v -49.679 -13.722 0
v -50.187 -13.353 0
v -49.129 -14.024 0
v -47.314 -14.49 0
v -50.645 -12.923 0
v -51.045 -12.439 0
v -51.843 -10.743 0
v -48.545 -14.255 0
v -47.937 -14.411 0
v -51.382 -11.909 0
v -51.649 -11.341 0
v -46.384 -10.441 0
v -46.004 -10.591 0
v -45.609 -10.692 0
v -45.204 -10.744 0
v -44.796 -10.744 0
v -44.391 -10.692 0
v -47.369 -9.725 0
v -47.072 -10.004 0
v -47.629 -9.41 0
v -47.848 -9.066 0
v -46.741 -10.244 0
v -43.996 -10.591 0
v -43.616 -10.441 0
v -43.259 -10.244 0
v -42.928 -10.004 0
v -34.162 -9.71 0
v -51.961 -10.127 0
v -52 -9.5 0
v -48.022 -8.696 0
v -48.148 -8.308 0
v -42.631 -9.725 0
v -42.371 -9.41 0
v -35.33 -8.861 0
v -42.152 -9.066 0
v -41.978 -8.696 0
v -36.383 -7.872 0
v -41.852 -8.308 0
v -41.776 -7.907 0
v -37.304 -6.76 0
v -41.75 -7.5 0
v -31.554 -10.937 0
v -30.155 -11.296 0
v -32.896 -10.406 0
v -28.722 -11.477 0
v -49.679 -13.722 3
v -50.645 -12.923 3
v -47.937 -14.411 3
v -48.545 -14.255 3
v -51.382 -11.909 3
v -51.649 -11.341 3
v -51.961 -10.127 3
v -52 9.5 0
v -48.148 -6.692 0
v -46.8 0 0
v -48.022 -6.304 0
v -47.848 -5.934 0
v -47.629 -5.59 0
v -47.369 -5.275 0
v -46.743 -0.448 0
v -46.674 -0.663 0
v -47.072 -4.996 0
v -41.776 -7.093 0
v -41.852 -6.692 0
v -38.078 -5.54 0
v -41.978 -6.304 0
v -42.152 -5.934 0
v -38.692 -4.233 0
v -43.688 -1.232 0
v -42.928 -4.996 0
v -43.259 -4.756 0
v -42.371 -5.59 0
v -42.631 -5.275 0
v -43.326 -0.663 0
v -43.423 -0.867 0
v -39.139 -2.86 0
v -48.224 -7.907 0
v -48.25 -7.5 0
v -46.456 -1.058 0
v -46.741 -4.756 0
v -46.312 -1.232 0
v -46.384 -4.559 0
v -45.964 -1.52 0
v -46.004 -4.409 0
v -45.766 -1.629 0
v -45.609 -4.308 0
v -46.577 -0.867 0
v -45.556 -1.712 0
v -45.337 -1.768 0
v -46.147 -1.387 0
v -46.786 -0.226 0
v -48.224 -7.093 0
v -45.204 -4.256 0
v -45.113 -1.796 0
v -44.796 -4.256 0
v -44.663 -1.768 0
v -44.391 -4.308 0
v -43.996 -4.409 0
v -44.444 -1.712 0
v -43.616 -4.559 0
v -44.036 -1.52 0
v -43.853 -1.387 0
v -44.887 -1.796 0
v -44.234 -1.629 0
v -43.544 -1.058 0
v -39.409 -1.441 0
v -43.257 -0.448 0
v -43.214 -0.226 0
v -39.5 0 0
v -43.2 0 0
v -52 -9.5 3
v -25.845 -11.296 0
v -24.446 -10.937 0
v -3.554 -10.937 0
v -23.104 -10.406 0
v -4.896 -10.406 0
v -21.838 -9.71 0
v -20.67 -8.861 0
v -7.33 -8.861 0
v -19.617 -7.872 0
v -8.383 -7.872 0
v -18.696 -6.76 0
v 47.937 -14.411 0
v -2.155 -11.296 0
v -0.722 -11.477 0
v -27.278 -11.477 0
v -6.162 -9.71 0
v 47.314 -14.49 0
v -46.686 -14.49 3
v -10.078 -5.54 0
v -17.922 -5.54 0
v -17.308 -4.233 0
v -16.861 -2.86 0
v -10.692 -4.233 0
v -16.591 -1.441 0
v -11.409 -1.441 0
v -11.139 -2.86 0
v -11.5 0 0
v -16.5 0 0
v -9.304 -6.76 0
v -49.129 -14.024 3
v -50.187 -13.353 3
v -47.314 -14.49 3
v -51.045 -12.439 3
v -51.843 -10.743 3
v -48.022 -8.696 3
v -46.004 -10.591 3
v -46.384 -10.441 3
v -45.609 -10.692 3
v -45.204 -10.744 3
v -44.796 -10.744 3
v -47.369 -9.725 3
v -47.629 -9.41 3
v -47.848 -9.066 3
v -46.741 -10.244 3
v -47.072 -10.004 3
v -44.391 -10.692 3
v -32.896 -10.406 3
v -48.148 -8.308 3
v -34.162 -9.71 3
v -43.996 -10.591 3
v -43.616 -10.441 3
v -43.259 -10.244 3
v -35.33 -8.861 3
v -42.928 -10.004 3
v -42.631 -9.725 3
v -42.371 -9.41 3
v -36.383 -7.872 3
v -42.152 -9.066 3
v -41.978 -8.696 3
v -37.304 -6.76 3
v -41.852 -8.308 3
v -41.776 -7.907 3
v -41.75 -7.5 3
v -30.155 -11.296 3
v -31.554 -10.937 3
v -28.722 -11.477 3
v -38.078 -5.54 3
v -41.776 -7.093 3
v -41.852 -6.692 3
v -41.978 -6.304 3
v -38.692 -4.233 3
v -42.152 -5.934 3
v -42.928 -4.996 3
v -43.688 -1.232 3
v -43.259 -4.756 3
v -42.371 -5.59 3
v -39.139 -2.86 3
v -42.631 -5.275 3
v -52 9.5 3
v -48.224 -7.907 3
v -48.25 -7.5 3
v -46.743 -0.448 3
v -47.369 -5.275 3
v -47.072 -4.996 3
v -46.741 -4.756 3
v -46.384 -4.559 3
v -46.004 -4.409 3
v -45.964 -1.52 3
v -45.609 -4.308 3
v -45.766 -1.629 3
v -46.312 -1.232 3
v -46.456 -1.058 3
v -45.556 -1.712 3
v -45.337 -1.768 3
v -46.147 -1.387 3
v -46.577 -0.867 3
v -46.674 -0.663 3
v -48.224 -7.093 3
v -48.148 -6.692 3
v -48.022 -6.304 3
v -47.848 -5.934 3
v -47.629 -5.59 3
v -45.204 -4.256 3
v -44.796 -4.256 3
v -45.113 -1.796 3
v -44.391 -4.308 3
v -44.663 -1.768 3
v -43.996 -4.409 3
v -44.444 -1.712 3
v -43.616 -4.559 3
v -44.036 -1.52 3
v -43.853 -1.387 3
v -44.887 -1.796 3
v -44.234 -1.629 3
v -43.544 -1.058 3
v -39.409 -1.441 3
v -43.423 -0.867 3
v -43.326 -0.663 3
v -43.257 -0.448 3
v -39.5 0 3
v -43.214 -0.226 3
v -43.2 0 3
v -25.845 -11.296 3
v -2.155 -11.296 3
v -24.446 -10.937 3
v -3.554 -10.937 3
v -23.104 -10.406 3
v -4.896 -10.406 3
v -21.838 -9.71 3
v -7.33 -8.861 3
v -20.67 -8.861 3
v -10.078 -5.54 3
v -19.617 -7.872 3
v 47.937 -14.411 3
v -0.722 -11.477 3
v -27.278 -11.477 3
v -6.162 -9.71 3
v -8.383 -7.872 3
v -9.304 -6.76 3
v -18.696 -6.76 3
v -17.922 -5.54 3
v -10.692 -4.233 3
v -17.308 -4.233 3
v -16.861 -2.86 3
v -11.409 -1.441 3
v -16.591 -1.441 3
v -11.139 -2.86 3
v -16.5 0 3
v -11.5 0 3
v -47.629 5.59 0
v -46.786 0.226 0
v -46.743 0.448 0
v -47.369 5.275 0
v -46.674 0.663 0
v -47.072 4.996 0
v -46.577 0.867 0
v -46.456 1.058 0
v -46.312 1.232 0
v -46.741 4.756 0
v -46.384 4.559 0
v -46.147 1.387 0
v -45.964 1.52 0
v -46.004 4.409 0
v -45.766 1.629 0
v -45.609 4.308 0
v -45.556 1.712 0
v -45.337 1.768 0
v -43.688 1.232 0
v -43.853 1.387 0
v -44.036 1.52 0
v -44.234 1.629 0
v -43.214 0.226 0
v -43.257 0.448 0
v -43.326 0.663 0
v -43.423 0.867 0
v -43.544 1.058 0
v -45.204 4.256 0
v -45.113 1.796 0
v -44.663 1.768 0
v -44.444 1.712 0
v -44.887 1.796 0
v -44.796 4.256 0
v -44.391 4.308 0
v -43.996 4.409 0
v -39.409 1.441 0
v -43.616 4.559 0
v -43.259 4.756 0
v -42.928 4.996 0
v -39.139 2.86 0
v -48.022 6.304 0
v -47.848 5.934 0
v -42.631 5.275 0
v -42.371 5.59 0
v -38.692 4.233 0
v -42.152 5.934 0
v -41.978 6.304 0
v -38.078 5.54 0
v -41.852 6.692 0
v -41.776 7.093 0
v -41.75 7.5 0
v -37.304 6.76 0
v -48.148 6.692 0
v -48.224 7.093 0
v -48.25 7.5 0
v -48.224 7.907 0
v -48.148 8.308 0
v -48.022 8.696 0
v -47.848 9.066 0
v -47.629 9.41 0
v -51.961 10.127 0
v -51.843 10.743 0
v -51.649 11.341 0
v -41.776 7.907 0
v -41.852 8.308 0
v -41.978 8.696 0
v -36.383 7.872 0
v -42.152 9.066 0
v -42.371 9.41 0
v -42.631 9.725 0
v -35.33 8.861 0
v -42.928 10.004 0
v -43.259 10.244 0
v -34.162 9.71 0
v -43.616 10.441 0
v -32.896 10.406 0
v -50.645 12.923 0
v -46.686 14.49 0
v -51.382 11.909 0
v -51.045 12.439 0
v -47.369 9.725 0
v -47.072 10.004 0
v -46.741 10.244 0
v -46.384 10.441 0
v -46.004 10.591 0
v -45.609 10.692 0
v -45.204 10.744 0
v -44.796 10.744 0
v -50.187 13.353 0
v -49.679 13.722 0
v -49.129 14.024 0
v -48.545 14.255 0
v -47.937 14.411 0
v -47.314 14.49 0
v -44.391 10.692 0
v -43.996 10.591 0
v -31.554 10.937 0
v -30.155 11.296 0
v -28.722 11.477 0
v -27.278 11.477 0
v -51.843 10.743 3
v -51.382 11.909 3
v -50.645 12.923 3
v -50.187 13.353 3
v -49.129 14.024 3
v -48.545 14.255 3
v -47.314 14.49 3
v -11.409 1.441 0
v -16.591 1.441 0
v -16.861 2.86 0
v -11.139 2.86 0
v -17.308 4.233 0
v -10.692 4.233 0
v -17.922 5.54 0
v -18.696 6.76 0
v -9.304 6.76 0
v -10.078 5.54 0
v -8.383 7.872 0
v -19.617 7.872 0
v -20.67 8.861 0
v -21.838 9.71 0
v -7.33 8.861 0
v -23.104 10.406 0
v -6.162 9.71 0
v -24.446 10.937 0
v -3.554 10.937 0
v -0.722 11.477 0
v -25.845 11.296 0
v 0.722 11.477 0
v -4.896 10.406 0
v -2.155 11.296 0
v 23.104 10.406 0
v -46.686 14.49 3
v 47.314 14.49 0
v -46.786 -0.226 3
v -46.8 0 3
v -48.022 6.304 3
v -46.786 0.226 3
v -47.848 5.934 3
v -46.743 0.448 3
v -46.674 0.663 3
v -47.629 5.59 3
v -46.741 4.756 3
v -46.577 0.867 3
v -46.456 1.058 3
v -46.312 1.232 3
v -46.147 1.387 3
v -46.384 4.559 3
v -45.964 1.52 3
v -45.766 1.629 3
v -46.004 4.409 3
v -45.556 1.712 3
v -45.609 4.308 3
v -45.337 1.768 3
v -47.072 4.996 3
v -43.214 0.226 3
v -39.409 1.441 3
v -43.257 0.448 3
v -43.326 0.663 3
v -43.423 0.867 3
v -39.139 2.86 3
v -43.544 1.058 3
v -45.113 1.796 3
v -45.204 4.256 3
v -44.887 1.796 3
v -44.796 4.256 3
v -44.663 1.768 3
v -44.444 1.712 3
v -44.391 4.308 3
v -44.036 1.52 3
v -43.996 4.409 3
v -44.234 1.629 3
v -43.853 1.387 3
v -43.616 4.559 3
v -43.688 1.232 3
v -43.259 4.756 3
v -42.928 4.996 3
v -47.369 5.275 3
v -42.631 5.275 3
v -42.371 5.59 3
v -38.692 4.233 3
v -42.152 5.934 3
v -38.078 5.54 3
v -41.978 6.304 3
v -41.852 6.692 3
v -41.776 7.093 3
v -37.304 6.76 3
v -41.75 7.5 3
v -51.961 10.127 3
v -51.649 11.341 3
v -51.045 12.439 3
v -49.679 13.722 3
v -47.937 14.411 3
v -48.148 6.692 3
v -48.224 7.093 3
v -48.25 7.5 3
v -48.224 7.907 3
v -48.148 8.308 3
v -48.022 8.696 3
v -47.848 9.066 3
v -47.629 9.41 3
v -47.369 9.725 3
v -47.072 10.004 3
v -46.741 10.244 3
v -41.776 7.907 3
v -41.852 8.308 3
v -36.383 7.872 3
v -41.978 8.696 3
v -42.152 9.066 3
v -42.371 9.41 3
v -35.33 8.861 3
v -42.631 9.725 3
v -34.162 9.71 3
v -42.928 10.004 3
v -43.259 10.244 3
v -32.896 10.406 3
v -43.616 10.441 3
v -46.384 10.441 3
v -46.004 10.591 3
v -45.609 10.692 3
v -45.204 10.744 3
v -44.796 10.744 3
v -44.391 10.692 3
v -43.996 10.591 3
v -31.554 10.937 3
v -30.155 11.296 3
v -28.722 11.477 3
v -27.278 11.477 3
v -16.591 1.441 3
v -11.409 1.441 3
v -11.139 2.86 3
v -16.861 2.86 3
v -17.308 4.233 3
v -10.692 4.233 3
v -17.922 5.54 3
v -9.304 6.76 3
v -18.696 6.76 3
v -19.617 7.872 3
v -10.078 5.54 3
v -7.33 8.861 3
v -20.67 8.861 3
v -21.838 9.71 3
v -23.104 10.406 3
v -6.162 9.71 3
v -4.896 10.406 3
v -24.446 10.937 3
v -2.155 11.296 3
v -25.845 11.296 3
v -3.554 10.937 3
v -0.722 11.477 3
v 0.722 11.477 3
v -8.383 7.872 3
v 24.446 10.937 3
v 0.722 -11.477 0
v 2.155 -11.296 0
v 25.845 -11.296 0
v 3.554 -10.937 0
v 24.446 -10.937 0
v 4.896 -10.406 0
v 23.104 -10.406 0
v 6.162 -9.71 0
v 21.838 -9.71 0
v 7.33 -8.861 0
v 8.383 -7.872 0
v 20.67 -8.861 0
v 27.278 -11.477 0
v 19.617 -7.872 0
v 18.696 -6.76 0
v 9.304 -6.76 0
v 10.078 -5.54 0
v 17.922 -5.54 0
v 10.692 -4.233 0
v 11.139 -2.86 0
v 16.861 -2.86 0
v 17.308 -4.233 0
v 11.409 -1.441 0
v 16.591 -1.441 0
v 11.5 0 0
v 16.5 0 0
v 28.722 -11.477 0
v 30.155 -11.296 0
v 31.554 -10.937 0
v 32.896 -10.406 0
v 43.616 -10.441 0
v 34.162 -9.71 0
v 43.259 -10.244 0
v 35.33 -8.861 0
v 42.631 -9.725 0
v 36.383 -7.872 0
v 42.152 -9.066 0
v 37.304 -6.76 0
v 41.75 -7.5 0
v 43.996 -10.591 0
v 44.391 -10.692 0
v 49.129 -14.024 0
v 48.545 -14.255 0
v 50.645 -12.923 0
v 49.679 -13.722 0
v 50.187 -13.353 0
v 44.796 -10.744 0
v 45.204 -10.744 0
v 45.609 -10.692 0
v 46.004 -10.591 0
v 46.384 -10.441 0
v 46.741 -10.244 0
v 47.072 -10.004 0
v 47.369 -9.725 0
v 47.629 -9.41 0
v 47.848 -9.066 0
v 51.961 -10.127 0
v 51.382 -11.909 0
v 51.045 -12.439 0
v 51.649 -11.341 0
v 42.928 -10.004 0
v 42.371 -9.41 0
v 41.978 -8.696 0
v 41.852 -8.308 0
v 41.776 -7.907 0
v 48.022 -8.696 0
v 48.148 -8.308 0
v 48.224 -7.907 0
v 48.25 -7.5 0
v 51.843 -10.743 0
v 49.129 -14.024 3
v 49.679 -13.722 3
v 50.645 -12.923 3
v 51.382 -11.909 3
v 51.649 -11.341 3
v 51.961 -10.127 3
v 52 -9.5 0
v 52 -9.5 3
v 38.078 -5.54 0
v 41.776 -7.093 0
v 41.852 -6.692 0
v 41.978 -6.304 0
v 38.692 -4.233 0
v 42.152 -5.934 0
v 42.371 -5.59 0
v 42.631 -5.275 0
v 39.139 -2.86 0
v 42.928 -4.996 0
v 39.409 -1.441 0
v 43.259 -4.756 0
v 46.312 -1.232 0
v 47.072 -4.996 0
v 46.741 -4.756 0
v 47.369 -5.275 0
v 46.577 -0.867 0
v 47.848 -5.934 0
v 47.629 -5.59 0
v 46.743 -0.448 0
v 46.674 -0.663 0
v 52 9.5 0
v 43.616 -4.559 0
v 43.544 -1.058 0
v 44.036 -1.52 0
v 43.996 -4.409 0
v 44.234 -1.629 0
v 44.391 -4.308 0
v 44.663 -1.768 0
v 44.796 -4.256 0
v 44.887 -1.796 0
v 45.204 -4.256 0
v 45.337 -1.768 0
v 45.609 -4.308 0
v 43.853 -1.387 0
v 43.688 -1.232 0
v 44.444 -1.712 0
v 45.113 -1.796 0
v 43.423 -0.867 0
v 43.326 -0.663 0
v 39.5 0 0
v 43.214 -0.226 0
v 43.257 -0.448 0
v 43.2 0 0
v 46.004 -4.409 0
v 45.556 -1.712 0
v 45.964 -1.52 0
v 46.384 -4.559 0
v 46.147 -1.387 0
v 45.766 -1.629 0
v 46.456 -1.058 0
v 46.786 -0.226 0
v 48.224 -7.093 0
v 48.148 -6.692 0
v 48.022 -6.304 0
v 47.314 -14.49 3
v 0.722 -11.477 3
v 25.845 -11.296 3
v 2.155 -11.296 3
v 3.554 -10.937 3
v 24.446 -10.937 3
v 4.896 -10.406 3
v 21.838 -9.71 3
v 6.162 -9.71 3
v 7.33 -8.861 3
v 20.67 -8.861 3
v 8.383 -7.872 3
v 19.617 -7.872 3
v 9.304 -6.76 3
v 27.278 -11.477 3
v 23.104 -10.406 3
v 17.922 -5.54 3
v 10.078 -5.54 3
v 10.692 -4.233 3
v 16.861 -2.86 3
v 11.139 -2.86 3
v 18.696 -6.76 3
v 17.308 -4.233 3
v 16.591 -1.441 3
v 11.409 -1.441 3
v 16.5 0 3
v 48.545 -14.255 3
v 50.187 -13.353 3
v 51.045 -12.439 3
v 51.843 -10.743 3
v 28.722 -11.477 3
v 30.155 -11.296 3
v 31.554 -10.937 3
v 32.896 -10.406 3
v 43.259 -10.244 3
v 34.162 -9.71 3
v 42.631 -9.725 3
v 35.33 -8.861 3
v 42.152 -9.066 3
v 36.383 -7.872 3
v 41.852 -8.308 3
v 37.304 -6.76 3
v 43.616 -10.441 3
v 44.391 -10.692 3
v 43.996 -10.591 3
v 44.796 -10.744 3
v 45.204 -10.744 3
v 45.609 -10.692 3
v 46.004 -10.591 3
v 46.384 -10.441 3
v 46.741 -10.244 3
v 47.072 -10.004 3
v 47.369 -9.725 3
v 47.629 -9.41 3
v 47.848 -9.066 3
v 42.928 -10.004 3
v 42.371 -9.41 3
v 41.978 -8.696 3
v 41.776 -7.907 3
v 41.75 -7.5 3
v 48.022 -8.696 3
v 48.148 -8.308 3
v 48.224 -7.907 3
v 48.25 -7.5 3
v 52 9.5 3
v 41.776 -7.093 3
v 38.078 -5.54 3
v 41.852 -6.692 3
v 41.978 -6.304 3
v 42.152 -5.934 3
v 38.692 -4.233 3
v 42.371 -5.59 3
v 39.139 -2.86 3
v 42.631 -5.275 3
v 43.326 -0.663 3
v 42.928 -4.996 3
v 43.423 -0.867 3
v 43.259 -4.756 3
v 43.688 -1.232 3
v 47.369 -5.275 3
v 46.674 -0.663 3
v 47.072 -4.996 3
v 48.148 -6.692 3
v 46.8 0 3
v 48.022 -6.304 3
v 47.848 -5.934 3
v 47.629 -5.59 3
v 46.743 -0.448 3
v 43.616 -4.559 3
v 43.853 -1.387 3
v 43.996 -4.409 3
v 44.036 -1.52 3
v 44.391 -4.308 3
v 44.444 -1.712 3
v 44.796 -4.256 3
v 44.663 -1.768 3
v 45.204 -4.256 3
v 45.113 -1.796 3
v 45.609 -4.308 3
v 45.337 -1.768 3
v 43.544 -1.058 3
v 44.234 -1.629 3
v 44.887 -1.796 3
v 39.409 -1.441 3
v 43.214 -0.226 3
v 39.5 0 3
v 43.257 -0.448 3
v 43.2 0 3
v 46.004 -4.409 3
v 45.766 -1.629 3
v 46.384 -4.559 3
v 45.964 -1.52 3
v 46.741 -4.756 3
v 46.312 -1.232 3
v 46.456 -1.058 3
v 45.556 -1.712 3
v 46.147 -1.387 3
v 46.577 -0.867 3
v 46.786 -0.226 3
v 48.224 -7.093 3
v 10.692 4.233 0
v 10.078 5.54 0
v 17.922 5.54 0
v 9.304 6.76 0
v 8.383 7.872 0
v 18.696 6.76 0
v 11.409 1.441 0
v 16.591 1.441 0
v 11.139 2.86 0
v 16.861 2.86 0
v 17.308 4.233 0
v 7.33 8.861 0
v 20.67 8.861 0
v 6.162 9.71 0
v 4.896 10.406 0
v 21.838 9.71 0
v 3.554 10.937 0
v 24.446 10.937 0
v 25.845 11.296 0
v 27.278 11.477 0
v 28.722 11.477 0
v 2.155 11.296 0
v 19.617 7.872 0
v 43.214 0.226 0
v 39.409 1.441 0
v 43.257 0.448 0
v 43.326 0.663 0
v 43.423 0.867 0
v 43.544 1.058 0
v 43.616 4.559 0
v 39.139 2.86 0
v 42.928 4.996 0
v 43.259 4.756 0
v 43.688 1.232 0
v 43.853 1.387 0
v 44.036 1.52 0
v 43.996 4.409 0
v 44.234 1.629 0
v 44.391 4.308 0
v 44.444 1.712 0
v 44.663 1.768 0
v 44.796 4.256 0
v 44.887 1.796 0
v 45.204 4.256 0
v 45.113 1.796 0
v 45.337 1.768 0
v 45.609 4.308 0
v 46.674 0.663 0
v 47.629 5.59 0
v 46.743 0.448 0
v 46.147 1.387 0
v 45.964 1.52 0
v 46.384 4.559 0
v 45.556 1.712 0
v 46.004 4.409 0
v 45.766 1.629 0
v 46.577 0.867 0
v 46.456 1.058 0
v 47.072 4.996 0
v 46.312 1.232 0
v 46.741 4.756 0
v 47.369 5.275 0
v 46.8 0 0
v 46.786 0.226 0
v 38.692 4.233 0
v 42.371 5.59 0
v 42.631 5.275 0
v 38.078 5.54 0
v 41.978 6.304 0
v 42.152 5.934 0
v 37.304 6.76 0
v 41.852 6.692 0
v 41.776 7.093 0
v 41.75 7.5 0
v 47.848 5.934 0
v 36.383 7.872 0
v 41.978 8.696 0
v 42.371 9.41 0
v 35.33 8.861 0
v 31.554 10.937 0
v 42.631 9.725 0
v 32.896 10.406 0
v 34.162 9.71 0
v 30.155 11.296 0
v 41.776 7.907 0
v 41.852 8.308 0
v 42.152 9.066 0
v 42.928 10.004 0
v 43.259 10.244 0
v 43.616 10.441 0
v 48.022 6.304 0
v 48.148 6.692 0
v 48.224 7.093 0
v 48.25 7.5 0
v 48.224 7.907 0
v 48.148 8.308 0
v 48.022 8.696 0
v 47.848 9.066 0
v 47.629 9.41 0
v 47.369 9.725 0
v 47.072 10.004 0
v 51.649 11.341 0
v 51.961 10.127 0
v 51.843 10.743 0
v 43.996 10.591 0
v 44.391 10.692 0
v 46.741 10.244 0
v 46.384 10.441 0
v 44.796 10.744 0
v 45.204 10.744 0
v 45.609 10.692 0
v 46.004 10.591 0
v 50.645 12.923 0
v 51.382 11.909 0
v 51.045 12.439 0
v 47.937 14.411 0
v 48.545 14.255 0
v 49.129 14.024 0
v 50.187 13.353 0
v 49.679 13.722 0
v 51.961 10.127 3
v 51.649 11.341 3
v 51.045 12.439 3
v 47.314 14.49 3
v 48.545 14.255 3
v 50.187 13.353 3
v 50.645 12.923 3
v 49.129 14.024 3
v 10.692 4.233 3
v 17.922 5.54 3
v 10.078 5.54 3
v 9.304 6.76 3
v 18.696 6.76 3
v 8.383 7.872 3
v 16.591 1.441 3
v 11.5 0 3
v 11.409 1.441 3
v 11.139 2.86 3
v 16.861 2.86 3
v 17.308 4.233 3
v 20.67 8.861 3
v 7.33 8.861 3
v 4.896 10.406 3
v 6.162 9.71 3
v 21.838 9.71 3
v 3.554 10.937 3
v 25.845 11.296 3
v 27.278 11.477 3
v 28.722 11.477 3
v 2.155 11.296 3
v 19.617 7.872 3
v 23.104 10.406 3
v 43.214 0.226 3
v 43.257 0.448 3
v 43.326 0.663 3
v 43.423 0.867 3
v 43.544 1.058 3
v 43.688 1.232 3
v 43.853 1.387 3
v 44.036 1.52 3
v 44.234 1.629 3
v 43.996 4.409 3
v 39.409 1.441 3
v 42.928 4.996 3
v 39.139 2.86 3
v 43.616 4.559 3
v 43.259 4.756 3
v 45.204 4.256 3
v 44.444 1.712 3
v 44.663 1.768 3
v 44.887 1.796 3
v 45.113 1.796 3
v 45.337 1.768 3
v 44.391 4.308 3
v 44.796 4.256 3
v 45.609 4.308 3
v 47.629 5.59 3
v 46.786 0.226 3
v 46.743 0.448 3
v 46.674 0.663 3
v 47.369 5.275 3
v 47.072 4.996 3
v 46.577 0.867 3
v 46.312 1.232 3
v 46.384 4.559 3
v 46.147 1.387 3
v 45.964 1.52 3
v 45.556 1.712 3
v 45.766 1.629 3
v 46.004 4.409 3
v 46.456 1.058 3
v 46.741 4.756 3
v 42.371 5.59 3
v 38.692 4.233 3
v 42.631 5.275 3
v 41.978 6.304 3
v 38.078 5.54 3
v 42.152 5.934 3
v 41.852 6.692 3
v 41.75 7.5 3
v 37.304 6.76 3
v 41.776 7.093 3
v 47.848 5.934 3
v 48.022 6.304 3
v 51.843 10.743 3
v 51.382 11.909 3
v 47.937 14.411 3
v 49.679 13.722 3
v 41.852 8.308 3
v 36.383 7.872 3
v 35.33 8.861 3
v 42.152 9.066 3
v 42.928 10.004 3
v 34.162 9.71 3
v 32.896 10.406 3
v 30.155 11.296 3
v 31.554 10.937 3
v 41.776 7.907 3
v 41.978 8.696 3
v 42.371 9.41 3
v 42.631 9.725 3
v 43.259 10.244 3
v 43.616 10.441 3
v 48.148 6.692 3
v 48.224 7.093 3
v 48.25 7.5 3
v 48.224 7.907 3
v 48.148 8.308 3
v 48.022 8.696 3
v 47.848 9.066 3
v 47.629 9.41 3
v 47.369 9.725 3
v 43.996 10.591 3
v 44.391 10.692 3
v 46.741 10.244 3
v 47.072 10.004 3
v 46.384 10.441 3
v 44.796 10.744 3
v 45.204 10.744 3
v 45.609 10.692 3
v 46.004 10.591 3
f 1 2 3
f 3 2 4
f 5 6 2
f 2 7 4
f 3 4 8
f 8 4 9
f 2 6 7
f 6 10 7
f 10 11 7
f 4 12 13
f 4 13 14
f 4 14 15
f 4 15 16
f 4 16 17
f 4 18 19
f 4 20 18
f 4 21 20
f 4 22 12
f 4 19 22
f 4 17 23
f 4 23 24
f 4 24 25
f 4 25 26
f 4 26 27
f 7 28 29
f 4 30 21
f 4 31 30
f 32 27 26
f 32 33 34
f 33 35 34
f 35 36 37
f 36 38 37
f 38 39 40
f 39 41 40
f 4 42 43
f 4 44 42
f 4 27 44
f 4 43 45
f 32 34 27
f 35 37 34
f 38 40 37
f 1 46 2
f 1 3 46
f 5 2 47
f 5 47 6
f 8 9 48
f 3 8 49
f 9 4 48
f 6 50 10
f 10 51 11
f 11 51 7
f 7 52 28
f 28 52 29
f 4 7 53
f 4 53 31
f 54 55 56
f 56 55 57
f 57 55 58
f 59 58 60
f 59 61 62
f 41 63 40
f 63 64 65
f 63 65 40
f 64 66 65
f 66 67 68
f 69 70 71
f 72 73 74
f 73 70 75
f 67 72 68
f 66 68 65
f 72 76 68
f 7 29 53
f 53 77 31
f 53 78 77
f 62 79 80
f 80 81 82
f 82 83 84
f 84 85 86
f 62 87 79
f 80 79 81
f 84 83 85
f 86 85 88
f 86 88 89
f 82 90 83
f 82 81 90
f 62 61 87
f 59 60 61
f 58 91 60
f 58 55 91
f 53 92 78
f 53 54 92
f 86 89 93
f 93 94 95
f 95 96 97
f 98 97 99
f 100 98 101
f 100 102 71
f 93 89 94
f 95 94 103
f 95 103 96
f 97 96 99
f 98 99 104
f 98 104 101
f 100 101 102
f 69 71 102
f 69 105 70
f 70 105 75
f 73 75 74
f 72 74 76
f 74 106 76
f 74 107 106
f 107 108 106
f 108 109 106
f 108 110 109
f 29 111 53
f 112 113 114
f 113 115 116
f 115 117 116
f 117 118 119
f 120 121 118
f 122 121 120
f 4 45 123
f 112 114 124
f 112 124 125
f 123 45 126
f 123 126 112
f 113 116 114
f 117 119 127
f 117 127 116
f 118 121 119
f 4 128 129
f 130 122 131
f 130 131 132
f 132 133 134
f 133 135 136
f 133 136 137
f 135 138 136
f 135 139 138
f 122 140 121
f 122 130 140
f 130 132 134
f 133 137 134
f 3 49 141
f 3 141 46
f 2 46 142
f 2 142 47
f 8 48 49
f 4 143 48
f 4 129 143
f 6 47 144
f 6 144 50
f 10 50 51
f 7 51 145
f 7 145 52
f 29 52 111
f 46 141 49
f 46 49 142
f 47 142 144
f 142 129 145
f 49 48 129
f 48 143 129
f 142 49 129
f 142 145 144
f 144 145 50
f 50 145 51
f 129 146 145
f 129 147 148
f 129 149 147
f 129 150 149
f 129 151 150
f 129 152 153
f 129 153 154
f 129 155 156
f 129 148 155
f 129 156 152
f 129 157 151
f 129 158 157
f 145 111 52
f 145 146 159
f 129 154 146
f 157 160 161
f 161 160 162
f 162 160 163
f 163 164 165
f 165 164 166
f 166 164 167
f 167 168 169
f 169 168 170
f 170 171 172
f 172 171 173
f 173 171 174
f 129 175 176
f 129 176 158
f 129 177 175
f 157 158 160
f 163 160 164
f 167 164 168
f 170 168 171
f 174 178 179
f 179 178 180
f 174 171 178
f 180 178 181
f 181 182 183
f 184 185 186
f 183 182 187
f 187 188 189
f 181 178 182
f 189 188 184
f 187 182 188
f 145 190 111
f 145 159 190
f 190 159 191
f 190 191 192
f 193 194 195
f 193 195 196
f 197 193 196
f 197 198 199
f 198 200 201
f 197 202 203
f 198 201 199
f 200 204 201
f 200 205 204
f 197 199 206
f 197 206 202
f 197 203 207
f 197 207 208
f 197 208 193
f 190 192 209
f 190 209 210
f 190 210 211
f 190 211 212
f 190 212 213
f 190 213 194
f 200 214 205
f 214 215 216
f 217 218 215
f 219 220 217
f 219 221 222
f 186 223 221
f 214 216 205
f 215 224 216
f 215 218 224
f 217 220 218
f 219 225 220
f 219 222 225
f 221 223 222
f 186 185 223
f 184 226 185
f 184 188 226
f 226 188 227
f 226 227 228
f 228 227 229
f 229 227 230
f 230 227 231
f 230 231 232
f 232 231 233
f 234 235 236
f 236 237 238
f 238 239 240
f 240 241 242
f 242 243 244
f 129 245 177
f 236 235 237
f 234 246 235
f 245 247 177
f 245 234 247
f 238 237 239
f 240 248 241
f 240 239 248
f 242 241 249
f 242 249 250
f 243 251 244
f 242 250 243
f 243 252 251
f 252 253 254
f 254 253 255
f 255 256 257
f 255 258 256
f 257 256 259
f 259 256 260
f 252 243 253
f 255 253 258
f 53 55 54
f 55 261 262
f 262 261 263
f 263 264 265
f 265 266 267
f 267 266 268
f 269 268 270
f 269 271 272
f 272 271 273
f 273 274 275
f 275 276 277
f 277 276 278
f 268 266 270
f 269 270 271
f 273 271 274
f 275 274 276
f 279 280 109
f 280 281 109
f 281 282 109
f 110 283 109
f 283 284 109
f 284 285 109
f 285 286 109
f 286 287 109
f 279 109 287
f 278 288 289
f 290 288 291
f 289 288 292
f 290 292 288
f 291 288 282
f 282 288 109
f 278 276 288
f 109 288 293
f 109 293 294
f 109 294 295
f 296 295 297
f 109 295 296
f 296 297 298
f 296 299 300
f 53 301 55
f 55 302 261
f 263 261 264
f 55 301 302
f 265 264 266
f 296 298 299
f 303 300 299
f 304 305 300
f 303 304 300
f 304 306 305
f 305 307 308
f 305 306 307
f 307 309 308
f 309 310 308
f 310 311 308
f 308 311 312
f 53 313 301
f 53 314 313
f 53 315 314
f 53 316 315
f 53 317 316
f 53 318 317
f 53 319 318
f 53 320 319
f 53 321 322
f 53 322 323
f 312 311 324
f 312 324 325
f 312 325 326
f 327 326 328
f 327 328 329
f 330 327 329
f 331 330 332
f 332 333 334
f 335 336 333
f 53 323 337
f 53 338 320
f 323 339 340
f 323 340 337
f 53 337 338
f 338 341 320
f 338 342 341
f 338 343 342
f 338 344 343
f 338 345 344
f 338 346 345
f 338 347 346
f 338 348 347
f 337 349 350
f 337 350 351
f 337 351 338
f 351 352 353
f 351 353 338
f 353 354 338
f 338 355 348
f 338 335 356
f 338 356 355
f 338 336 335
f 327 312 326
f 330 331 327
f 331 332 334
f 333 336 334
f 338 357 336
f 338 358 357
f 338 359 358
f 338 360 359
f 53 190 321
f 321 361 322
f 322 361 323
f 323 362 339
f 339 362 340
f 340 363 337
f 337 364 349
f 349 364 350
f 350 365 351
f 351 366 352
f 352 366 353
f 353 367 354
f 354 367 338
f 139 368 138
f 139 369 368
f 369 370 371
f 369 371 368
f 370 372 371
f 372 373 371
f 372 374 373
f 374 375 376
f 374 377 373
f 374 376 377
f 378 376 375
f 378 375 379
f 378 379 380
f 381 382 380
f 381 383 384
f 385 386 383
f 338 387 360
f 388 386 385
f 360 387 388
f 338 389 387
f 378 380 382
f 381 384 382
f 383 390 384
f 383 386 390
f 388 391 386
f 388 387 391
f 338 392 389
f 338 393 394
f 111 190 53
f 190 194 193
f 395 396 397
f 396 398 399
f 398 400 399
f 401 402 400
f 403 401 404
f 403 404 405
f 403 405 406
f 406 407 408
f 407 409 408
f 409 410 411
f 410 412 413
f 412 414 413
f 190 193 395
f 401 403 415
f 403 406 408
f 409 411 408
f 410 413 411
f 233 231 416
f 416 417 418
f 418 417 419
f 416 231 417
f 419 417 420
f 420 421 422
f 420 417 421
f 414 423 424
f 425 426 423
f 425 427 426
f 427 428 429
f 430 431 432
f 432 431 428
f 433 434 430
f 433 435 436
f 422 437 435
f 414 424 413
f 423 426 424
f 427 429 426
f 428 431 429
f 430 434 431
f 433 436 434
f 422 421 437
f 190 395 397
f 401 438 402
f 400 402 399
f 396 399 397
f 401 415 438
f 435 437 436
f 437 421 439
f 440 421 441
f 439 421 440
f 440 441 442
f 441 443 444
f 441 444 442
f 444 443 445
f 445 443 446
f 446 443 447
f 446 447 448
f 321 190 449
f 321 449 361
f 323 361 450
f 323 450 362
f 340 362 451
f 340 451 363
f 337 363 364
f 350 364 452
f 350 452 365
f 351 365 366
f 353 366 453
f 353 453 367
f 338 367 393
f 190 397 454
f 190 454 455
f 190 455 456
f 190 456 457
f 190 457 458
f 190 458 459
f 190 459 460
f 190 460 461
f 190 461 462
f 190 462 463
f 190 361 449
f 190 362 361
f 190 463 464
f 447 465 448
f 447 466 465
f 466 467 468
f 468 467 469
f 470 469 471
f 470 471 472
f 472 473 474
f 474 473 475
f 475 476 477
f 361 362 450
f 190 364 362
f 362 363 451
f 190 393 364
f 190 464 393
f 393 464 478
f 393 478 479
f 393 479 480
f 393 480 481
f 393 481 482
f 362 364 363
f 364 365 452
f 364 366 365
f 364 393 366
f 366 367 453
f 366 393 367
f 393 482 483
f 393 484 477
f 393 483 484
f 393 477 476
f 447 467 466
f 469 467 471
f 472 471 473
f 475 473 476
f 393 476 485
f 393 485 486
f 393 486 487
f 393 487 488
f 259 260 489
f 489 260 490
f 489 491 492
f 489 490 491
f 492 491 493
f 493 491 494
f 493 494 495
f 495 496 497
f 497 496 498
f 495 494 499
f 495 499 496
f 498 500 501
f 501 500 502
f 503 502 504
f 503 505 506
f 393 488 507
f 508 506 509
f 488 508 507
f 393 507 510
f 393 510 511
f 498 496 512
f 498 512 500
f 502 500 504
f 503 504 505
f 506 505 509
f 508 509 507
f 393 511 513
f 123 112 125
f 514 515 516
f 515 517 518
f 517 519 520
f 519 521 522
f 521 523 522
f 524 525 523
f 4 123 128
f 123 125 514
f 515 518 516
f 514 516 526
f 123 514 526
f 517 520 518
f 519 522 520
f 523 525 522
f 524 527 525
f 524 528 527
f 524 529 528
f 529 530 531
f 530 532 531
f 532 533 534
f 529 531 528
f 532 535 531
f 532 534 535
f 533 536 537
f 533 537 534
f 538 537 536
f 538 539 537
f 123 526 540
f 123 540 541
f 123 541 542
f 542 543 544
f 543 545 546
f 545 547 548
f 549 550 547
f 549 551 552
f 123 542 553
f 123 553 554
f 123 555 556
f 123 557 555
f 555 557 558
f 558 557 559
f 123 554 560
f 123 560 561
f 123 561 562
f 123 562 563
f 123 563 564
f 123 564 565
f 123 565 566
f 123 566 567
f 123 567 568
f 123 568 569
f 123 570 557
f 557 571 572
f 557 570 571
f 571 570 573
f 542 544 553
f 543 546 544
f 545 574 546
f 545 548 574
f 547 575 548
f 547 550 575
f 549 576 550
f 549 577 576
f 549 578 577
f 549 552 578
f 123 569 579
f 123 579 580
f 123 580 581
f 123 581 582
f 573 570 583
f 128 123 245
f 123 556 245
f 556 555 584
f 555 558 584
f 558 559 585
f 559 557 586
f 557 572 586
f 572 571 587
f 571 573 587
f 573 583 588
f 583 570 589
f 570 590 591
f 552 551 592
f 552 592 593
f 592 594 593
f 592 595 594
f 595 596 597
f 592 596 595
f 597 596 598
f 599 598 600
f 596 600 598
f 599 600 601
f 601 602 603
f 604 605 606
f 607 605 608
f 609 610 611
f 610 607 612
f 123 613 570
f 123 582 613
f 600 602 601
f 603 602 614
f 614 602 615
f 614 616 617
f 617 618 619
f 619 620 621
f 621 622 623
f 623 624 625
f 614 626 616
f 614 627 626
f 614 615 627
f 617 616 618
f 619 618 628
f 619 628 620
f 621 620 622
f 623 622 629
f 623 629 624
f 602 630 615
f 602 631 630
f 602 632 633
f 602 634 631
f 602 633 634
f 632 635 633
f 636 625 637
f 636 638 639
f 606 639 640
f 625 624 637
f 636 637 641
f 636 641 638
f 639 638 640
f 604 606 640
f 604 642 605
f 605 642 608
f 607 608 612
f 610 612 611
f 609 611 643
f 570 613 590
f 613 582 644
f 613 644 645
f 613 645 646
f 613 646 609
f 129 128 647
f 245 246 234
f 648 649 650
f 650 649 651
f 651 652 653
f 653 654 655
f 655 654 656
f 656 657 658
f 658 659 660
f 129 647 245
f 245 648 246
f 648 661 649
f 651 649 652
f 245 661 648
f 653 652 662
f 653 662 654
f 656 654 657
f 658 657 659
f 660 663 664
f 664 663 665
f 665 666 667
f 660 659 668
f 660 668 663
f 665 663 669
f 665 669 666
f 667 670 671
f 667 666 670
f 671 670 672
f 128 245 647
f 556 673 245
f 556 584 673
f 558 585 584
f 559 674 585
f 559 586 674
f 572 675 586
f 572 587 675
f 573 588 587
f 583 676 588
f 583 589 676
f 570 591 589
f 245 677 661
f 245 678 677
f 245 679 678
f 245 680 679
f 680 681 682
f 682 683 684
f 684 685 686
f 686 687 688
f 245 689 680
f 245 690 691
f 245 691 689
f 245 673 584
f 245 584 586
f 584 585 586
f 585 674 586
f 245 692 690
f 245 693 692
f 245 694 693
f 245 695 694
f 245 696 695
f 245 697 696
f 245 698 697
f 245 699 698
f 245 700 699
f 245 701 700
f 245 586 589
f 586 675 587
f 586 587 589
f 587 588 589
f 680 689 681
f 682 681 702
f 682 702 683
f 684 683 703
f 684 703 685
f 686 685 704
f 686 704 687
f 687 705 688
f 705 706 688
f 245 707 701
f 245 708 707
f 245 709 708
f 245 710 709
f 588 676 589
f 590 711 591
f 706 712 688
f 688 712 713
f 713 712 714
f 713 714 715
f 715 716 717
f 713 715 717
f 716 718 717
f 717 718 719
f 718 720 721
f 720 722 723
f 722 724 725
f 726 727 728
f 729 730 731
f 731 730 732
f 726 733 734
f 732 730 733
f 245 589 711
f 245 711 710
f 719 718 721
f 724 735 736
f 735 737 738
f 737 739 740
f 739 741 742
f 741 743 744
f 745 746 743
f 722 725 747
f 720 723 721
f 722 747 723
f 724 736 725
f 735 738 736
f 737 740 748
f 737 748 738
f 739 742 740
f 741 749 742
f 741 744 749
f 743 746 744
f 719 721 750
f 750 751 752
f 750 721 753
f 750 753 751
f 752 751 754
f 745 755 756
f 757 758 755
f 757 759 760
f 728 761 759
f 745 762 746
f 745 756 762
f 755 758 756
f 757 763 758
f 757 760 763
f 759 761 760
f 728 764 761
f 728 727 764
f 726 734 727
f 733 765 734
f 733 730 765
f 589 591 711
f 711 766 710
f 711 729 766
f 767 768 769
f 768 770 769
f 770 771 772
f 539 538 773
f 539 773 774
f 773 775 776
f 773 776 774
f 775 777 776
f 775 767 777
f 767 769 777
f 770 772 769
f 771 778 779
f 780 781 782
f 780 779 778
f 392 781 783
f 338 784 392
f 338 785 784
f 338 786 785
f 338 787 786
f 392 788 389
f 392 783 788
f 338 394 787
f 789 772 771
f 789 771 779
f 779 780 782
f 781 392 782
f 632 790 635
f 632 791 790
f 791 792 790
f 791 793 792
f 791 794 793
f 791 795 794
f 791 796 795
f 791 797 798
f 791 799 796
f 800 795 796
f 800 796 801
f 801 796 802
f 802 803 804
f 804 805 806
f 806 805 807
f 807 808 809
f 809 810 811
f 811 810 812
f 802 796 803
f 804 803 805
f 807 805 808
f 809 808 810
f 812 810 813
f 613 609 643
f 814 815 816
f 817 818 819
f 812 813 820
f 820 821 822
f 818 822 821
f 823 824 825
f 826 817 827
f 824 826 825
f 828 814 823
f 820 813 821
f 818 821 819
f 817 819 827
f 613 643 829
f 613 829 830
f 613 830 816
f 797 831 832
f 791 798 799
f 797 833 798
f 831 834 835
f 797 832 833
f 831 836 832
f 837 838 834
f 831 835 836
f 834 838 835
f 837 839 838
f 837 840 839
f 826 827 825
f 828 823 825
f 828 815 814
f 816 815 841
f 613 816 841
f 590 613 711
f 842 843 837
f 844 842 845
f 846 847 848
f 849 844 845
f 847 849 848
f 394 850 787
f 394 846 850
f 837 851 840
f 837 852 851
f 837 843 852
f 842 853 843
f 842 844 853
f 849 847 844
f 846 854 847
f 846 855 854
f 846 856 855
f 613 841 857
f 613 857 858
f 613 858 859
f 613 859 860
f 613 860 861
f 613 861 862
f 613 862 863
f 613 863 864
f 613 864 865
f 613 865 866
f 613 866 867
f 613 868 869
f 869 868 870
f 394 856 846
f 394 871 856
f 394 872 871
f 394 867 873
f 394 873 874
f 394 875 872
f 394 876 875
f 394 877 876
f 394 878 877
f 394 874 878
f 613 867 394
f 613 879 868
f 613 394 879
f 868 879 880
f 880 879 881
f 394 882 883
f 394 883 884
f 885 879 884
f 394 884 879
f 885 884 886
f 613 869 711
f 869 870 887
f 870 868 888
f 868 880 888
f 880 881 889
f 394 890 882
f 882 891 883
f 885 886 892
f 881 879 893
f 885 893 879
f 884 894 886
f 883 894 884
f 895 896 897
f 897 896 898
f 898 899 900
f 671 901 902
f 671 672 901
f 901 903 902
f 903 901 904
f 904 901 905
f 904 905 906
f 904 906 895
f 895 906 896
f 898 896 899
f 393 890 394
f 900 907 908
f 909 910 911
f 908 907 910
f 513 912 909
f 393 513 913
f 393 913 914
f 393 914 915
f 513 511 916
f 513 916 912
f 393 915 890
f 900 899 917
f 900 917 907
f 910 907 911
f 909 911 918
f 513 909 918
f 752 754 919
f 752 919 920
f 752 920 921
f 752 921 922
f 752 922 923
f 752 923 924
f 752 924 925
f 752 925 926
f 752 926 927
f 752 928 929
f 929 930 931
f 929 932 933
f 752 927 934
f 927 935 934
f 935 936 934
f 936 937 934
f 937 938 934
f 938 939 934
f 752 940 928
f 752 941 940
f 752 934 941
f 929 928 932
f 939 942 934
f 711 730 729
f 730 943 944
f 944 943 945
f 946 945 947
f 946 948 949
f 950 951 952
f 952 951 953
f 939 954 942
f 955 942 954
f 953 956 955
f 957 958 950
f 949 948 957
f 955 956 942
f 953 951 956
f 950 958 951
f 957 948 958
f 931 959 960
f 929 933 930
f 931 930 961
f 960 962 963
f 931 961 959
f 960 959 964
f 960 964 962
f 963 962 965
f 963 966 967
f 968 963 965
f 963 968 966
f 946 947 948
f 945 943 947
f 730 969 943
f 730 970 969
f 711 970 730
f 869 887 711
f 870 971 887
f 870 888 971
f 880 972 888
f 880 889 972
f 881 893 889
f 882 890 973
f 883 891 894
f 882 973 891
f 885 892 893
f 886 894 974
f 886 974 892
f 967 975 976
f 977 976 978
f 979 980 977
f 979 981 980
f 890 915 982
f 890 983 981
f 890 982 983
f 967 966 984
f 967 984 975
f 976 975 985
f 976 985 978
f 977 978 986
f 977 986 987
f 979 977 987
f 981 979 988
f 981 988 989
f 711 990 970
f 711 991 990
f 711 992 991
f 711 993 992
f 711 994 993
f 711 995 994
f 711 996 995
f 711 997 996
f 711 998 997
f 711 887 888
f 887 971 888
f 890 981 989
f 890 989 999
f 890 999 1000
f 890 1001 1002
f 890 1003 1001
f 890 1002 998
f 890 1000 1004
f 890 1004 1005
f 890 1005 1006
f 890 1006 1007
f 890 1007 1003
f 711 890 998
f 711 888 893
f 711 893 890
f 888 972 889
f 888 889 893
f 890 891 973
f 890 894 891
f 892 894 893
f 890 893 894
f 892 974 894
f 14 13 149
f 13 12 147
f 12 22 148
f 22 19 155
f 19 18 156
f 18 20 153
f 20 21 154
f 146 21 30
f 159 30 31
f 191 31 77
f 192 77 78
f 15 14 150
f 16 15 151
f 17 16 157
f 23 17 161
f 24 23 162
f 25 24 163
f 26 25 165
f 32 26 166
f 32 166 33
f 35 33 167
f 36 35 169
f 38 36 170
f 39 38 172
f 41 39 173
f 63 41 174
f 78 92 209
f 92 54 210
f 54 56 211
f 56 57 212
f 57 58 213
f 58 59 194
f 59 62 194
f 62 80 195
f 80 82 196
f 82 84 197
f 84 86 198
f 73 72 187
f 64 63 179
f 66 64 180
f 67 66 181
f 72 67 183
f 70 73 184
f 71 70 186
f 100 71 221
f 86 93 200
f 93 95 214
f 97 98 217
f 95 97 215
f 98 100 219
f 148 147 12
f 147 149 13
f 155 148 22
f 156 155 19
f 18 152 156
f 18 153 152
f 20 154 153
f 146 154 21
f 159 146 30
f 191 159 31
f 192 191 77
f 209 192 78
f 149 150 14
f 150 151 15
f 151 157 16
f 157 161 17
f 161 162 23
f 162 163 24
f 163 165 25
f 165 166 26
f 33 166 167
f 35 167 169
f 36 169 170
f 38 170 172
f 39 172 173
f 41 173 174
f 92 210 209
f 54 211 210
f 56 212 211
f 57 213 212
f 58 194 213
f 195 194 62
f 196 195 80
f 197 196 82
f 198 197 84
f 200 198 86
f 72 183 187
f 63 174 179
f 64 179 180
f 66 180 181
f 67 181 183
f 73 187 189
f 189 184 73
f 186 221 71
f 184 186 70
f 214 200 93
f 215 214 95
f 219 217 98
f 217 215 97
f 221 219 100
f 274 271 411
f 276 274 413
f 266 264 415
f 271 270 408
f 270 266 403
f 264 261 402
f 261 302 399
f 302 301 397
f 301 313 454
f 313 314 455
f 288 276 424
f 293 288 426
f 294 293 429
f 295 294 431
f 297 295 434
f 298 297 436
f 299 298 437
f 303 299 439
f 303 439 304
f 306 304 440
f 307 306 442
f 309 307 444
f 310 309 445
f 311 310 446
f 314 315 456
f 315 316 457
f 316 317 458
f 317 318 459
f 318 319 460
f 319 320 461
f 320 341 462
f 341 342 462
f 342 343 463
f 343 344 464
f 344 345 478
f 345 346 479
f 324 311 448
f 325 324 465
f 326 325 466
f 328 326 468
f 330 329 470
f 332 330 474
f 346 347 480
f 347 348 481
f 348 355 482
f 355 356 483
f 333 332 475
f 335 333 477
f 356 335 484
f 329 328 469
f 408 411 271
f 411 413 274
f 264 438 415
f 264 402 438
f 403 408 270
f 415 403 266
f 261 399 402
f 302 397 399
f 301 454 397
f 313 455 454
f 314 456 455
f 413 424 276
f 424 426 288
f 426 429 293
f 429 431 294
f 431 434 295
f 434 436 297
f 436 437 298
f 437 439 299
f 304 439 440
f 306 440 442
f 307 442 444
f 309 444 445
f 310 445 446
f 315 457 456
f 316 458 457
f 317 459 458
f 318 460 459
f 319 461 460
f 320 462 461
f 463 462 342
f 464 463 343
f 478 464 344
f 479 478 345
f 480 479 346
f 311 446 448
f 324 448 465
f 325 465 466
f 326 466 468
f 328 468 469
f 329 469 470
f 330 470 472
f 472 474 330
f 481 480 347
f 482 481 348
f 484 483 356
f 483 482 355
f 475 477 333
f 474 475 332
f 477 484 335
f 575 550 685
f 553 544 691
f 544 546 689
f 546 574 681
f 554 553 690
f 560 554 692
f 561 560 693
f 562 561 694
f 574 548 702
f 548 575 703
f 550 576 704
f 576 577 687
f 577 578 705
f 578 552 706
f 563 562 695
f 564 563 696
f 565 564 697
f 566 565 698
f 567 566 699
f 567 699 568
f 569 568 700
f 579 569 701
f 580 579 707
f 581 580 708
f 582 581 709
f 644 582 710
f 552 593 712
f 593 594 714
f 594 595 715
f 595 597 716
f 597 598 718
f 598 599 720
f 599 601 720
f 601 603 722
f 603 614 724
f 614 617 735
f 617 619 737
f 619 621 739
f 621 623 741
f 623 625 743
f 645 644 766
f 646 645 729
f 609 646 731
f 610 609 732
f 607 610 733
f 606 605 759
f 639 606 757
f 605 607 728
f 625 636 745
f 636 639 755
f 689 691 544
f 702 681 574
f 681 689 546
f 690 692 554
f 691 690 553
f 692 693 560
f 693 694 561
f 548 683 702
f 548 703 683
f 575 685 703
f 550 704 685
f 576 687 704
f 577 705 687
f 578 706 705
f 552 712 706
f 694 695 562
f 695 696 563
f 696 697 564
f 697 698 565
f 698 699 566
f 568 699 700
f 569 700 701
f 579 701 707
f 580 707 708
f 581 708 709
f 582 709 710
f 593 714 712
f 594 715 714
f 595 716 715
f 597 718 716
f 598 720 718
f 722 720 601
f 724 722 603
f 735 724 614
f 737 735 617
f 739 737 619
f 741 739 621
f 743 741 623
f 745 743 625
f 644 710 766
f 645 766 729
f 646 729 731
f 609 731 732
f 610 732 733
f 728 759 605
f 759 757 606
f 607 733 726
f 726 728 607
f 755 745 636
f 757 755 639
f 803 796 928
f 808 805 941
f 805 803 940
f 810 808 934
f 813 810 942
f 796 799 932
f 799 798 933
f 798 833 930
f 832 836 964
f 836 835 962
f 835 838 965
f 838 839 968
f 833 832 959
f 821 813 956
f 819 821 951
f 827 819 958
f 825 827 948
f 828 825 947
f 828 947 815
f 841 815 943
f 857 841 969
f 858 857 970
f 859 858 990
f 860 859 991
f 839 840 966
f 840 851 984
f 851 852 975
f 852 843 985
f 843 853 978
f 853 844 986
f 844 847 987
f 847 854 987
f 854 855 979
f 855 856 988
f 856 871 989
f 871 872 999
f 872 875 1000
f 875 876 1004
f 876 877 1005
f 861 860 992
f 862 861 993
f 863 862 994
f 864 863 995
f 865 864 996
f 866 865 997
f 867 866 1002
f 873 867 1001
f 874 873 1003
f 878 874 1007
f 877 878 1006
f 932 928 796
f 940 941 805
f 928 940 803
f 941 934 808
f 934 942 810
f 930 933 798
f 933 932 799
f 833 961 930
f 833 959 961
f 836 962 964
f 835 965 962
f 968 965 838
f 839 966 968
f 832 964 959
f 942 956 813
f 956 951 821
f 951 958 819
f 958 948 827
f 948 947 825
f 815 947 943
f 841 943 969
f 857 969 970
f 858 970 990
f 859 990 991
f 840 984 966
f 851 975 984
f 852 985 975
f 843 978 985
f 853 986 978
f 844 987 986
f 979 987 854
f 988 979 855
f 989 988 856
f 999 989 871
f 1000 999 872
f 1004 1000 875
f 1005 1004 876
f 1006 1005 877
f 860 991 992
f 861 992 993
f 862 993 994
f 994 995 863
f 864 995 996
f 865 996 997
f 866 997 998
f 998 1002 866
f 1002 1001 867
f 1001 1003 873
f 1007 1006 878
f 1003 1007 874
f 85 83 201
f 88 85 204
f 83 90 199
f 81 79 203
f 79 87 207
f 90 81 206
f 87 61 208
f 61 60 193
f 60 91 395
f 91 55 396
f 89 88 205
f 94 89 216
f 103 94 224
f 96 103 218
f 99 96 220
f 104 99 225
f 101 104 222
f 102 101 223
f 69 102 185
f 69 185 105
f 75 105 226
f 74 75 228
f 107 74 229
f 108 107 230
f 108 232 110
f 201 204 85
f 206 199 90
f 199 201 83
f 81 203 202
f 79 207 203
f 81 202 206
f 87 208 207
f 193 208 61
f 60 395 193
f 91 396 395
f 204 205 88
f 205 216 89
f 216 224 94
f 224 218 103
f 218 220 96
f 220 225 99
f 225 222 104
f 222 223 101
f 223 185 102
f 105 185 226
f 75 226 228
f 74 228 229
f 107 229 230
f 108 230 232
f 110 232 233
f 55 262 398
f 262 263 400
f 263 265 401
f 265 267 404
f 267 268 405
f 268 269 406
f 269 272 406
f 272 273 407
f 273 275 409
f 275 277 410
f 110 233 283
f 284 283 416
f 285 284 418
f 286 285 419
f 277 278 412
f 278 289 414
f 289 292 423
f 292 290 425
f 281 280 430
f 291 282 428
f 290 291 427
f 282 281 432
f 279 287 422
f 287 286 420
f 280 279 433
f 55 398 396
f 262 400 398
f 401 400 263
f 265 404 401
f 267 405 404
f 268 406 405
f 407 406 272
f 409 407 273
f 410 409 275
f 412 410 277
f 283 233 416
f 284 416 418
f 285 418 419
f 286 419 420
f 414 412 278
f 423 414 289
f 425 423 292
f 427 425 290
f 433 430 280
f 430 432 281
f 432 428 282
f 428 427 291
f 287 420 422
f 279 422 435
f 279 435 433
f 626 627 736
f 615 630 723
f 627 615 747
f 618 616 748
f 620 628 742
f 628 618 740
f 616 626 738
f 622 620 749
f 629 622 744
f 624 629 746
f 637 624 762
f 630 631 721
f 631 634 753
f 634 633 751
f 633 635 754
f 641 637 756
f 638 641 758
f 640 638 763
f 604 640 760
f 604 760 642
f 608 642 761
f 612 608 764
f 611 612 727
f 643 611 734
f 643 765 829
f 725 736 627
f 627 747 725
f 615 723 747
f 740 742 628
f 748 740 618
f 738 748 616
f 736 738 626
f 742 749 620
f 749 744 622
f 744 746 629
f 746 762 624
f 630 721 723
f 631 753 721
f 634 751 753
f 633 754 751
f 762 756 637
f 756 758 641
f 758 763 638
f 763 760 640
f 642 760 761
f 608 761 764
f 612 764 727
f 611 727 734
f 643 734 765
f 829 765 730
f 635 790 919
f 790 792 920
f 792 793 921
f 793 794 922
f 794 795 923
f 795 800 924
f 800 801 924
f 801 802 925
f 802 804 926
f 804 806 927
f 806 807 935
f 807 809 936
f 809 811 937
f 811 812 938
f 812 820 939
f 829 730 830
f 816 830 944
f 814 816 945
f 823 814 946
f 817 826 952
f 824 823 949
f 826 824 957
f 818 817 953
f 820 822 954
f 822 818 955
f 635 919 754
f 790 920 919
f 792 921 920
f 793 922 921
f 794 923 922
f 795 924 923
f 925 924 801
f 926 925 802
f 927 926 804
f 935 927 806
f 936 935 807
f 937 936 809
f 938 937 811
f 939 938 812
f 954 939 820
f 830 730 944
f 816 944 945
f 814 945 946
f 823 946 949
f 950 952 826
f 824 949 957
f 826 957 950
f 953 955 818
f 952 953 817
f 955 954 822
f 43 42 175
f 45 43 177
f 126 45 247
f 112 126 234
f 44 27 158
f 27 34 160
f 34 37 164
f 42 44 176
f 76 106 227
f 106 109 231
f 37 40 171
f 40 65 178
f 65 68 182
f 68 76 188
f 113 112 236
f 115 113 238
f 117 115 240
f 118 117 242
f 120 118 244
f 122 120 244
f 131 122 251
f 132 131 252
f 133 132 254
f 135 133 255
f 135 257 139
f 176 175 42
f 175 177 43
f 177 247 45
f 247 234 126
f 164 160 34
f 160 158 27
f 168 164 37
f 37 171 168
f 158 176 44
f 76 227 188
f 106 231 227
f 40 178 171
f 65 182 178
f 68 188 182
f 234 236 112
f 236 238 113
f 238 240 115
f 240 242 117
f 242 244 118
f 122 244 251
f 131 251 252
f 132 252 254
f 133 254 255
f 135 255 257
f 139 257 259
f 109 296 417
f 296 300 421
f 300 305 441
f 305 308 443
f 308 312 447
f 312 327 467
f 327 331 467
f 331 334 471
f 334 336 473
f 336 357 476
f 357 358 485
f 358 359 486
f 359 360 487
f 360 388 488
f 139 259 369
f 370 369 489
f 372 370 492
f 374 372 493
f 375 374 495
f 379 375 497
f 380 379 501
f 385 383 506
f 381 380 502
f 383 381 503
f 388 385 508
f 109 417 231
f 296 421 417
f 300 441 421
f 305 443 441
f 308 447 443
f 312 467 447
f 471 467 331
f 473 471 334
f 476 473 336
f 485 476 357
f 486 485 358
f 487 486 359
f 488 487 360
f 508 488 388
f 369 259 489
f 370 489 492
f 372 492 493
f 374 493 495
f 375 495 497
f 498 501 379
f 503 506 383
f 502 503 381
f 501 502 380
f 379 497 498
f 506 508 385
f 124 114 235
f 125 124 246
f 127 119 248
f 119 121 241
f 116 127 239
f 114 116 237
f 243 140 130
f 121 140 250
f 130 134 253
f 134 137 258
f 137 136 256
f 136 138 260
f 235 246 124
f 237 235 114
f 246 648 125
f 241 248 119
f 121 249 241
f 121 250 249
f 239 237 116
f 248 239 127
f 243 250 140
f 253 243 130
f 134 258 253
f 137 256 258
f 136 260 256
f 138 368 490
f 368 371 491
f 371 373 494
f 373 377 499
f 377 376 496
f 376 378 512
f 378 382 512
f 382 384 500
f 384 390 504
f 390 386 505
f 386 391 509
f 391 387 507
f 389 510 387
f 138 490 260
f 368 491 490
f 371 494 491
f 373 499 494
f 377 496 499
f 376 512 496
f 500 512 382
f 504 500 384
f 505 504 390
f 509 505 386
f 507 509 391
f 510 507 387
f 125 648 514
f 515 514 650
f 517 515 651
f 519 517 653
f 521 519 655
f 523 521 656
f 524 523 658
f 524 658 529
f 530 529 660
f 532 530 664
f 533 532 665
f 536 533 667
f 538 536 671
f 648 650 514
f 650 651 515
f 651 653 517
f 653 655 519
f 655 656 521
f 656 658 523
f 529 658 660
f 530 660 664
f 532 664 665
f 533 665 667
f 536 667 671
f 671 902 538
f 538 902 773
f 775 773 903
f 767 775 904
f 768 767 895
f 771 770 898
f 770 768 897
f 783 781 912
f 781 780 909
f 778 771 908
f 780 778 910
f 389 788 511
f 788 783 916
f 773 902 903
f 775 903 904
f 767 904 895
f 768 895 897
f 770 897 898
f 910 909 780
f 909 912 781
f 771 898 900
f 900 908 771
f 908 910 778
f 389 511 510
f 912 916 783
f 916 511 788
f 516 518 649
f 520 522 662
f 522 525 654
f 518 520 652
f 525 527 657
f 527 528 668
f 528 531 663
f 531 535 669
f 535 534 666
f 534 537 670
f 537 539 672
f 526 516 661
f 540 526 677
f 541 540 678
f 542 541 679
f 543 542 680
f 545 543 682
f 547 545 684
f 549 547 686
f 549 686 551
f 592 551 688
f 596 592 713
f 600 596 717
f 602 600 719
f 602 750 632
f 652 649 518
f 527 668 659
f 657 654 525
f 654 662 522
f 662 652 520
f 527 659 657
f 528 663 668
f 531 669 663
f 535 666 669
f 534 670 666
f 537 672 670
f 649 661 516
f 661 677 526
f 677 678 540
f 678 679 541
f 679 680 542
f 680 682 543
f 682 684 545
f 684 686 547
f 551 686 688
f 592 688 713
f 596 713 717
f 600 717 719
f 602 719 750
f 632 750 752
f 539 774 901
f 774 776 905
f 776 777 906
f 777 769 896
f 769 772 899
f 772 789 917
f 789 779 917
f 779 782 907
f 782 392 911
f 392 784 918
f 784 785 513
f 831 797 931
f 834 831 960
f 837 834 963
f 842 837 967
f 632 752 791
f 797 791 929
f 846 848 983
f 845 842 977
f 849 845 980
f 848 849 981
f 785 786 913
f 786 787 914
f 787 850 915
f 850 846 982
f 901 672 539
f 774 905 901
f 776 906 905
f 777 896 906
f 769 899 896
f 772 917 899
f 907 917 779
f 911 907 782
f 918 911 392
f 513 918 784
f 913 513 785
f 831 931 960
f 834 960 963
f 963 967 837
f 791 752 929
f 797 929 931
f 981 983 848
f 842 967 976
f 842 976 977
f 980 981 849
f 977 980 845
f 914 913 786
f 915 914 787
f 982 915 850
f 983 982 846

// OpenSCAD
$fn = 50;

difference() {
	union() {
		hull() {
			translate(v = [-47.0, 9.5, 0]) {
				cylinder(h = 3, r = 5);
			}
			translate(v = [47.0, 9.5, 0]) {
				cylinder(h = 3, r = 5);
			}
			translate(v = [-47.0, -9.5, 0]) {
				cylinder(h = 3, r = 5);
			}
			translate(v = [47.0, -9.5, 0]) {
				cylinder(h = 3, r = 5);
			}
		}
	}
	union() {
		translate(v = [-45.0, -7.5, 0]) {
			cylinder(h = 3, r = 3.25);
		}
		translate(v = [-45.0, 7.5, 0]) {
			cylinder(h = 3, r = 3.25);
		}
		translate(v = [45.0, -7.5, 0]) {
			cylinder(h = 3, r = 3.25);
		}
		translate(v = [45.0, 7.5, 0]) {
			cylinder(h = 3, r = 3.25);
		}
		translate(v = [-45.0, 0.0, 0]) {
			cylinder(h = 3, r = 1.8);
		}
		translate(v = [45.0, 0.0, 0]) {
			cylinder(h = 3, r = 1.8);
		}
		translate(v = [-28.0, 0, 0.0]) {
			cylinder(h = 3, r = 11.5);
		}
		cylinder(h = 3, r = 11.5);
		translate(v = [28.0, 0, 0.0]) {
			cylinder(h = 3, r = 11.5);
		}
	}
}
